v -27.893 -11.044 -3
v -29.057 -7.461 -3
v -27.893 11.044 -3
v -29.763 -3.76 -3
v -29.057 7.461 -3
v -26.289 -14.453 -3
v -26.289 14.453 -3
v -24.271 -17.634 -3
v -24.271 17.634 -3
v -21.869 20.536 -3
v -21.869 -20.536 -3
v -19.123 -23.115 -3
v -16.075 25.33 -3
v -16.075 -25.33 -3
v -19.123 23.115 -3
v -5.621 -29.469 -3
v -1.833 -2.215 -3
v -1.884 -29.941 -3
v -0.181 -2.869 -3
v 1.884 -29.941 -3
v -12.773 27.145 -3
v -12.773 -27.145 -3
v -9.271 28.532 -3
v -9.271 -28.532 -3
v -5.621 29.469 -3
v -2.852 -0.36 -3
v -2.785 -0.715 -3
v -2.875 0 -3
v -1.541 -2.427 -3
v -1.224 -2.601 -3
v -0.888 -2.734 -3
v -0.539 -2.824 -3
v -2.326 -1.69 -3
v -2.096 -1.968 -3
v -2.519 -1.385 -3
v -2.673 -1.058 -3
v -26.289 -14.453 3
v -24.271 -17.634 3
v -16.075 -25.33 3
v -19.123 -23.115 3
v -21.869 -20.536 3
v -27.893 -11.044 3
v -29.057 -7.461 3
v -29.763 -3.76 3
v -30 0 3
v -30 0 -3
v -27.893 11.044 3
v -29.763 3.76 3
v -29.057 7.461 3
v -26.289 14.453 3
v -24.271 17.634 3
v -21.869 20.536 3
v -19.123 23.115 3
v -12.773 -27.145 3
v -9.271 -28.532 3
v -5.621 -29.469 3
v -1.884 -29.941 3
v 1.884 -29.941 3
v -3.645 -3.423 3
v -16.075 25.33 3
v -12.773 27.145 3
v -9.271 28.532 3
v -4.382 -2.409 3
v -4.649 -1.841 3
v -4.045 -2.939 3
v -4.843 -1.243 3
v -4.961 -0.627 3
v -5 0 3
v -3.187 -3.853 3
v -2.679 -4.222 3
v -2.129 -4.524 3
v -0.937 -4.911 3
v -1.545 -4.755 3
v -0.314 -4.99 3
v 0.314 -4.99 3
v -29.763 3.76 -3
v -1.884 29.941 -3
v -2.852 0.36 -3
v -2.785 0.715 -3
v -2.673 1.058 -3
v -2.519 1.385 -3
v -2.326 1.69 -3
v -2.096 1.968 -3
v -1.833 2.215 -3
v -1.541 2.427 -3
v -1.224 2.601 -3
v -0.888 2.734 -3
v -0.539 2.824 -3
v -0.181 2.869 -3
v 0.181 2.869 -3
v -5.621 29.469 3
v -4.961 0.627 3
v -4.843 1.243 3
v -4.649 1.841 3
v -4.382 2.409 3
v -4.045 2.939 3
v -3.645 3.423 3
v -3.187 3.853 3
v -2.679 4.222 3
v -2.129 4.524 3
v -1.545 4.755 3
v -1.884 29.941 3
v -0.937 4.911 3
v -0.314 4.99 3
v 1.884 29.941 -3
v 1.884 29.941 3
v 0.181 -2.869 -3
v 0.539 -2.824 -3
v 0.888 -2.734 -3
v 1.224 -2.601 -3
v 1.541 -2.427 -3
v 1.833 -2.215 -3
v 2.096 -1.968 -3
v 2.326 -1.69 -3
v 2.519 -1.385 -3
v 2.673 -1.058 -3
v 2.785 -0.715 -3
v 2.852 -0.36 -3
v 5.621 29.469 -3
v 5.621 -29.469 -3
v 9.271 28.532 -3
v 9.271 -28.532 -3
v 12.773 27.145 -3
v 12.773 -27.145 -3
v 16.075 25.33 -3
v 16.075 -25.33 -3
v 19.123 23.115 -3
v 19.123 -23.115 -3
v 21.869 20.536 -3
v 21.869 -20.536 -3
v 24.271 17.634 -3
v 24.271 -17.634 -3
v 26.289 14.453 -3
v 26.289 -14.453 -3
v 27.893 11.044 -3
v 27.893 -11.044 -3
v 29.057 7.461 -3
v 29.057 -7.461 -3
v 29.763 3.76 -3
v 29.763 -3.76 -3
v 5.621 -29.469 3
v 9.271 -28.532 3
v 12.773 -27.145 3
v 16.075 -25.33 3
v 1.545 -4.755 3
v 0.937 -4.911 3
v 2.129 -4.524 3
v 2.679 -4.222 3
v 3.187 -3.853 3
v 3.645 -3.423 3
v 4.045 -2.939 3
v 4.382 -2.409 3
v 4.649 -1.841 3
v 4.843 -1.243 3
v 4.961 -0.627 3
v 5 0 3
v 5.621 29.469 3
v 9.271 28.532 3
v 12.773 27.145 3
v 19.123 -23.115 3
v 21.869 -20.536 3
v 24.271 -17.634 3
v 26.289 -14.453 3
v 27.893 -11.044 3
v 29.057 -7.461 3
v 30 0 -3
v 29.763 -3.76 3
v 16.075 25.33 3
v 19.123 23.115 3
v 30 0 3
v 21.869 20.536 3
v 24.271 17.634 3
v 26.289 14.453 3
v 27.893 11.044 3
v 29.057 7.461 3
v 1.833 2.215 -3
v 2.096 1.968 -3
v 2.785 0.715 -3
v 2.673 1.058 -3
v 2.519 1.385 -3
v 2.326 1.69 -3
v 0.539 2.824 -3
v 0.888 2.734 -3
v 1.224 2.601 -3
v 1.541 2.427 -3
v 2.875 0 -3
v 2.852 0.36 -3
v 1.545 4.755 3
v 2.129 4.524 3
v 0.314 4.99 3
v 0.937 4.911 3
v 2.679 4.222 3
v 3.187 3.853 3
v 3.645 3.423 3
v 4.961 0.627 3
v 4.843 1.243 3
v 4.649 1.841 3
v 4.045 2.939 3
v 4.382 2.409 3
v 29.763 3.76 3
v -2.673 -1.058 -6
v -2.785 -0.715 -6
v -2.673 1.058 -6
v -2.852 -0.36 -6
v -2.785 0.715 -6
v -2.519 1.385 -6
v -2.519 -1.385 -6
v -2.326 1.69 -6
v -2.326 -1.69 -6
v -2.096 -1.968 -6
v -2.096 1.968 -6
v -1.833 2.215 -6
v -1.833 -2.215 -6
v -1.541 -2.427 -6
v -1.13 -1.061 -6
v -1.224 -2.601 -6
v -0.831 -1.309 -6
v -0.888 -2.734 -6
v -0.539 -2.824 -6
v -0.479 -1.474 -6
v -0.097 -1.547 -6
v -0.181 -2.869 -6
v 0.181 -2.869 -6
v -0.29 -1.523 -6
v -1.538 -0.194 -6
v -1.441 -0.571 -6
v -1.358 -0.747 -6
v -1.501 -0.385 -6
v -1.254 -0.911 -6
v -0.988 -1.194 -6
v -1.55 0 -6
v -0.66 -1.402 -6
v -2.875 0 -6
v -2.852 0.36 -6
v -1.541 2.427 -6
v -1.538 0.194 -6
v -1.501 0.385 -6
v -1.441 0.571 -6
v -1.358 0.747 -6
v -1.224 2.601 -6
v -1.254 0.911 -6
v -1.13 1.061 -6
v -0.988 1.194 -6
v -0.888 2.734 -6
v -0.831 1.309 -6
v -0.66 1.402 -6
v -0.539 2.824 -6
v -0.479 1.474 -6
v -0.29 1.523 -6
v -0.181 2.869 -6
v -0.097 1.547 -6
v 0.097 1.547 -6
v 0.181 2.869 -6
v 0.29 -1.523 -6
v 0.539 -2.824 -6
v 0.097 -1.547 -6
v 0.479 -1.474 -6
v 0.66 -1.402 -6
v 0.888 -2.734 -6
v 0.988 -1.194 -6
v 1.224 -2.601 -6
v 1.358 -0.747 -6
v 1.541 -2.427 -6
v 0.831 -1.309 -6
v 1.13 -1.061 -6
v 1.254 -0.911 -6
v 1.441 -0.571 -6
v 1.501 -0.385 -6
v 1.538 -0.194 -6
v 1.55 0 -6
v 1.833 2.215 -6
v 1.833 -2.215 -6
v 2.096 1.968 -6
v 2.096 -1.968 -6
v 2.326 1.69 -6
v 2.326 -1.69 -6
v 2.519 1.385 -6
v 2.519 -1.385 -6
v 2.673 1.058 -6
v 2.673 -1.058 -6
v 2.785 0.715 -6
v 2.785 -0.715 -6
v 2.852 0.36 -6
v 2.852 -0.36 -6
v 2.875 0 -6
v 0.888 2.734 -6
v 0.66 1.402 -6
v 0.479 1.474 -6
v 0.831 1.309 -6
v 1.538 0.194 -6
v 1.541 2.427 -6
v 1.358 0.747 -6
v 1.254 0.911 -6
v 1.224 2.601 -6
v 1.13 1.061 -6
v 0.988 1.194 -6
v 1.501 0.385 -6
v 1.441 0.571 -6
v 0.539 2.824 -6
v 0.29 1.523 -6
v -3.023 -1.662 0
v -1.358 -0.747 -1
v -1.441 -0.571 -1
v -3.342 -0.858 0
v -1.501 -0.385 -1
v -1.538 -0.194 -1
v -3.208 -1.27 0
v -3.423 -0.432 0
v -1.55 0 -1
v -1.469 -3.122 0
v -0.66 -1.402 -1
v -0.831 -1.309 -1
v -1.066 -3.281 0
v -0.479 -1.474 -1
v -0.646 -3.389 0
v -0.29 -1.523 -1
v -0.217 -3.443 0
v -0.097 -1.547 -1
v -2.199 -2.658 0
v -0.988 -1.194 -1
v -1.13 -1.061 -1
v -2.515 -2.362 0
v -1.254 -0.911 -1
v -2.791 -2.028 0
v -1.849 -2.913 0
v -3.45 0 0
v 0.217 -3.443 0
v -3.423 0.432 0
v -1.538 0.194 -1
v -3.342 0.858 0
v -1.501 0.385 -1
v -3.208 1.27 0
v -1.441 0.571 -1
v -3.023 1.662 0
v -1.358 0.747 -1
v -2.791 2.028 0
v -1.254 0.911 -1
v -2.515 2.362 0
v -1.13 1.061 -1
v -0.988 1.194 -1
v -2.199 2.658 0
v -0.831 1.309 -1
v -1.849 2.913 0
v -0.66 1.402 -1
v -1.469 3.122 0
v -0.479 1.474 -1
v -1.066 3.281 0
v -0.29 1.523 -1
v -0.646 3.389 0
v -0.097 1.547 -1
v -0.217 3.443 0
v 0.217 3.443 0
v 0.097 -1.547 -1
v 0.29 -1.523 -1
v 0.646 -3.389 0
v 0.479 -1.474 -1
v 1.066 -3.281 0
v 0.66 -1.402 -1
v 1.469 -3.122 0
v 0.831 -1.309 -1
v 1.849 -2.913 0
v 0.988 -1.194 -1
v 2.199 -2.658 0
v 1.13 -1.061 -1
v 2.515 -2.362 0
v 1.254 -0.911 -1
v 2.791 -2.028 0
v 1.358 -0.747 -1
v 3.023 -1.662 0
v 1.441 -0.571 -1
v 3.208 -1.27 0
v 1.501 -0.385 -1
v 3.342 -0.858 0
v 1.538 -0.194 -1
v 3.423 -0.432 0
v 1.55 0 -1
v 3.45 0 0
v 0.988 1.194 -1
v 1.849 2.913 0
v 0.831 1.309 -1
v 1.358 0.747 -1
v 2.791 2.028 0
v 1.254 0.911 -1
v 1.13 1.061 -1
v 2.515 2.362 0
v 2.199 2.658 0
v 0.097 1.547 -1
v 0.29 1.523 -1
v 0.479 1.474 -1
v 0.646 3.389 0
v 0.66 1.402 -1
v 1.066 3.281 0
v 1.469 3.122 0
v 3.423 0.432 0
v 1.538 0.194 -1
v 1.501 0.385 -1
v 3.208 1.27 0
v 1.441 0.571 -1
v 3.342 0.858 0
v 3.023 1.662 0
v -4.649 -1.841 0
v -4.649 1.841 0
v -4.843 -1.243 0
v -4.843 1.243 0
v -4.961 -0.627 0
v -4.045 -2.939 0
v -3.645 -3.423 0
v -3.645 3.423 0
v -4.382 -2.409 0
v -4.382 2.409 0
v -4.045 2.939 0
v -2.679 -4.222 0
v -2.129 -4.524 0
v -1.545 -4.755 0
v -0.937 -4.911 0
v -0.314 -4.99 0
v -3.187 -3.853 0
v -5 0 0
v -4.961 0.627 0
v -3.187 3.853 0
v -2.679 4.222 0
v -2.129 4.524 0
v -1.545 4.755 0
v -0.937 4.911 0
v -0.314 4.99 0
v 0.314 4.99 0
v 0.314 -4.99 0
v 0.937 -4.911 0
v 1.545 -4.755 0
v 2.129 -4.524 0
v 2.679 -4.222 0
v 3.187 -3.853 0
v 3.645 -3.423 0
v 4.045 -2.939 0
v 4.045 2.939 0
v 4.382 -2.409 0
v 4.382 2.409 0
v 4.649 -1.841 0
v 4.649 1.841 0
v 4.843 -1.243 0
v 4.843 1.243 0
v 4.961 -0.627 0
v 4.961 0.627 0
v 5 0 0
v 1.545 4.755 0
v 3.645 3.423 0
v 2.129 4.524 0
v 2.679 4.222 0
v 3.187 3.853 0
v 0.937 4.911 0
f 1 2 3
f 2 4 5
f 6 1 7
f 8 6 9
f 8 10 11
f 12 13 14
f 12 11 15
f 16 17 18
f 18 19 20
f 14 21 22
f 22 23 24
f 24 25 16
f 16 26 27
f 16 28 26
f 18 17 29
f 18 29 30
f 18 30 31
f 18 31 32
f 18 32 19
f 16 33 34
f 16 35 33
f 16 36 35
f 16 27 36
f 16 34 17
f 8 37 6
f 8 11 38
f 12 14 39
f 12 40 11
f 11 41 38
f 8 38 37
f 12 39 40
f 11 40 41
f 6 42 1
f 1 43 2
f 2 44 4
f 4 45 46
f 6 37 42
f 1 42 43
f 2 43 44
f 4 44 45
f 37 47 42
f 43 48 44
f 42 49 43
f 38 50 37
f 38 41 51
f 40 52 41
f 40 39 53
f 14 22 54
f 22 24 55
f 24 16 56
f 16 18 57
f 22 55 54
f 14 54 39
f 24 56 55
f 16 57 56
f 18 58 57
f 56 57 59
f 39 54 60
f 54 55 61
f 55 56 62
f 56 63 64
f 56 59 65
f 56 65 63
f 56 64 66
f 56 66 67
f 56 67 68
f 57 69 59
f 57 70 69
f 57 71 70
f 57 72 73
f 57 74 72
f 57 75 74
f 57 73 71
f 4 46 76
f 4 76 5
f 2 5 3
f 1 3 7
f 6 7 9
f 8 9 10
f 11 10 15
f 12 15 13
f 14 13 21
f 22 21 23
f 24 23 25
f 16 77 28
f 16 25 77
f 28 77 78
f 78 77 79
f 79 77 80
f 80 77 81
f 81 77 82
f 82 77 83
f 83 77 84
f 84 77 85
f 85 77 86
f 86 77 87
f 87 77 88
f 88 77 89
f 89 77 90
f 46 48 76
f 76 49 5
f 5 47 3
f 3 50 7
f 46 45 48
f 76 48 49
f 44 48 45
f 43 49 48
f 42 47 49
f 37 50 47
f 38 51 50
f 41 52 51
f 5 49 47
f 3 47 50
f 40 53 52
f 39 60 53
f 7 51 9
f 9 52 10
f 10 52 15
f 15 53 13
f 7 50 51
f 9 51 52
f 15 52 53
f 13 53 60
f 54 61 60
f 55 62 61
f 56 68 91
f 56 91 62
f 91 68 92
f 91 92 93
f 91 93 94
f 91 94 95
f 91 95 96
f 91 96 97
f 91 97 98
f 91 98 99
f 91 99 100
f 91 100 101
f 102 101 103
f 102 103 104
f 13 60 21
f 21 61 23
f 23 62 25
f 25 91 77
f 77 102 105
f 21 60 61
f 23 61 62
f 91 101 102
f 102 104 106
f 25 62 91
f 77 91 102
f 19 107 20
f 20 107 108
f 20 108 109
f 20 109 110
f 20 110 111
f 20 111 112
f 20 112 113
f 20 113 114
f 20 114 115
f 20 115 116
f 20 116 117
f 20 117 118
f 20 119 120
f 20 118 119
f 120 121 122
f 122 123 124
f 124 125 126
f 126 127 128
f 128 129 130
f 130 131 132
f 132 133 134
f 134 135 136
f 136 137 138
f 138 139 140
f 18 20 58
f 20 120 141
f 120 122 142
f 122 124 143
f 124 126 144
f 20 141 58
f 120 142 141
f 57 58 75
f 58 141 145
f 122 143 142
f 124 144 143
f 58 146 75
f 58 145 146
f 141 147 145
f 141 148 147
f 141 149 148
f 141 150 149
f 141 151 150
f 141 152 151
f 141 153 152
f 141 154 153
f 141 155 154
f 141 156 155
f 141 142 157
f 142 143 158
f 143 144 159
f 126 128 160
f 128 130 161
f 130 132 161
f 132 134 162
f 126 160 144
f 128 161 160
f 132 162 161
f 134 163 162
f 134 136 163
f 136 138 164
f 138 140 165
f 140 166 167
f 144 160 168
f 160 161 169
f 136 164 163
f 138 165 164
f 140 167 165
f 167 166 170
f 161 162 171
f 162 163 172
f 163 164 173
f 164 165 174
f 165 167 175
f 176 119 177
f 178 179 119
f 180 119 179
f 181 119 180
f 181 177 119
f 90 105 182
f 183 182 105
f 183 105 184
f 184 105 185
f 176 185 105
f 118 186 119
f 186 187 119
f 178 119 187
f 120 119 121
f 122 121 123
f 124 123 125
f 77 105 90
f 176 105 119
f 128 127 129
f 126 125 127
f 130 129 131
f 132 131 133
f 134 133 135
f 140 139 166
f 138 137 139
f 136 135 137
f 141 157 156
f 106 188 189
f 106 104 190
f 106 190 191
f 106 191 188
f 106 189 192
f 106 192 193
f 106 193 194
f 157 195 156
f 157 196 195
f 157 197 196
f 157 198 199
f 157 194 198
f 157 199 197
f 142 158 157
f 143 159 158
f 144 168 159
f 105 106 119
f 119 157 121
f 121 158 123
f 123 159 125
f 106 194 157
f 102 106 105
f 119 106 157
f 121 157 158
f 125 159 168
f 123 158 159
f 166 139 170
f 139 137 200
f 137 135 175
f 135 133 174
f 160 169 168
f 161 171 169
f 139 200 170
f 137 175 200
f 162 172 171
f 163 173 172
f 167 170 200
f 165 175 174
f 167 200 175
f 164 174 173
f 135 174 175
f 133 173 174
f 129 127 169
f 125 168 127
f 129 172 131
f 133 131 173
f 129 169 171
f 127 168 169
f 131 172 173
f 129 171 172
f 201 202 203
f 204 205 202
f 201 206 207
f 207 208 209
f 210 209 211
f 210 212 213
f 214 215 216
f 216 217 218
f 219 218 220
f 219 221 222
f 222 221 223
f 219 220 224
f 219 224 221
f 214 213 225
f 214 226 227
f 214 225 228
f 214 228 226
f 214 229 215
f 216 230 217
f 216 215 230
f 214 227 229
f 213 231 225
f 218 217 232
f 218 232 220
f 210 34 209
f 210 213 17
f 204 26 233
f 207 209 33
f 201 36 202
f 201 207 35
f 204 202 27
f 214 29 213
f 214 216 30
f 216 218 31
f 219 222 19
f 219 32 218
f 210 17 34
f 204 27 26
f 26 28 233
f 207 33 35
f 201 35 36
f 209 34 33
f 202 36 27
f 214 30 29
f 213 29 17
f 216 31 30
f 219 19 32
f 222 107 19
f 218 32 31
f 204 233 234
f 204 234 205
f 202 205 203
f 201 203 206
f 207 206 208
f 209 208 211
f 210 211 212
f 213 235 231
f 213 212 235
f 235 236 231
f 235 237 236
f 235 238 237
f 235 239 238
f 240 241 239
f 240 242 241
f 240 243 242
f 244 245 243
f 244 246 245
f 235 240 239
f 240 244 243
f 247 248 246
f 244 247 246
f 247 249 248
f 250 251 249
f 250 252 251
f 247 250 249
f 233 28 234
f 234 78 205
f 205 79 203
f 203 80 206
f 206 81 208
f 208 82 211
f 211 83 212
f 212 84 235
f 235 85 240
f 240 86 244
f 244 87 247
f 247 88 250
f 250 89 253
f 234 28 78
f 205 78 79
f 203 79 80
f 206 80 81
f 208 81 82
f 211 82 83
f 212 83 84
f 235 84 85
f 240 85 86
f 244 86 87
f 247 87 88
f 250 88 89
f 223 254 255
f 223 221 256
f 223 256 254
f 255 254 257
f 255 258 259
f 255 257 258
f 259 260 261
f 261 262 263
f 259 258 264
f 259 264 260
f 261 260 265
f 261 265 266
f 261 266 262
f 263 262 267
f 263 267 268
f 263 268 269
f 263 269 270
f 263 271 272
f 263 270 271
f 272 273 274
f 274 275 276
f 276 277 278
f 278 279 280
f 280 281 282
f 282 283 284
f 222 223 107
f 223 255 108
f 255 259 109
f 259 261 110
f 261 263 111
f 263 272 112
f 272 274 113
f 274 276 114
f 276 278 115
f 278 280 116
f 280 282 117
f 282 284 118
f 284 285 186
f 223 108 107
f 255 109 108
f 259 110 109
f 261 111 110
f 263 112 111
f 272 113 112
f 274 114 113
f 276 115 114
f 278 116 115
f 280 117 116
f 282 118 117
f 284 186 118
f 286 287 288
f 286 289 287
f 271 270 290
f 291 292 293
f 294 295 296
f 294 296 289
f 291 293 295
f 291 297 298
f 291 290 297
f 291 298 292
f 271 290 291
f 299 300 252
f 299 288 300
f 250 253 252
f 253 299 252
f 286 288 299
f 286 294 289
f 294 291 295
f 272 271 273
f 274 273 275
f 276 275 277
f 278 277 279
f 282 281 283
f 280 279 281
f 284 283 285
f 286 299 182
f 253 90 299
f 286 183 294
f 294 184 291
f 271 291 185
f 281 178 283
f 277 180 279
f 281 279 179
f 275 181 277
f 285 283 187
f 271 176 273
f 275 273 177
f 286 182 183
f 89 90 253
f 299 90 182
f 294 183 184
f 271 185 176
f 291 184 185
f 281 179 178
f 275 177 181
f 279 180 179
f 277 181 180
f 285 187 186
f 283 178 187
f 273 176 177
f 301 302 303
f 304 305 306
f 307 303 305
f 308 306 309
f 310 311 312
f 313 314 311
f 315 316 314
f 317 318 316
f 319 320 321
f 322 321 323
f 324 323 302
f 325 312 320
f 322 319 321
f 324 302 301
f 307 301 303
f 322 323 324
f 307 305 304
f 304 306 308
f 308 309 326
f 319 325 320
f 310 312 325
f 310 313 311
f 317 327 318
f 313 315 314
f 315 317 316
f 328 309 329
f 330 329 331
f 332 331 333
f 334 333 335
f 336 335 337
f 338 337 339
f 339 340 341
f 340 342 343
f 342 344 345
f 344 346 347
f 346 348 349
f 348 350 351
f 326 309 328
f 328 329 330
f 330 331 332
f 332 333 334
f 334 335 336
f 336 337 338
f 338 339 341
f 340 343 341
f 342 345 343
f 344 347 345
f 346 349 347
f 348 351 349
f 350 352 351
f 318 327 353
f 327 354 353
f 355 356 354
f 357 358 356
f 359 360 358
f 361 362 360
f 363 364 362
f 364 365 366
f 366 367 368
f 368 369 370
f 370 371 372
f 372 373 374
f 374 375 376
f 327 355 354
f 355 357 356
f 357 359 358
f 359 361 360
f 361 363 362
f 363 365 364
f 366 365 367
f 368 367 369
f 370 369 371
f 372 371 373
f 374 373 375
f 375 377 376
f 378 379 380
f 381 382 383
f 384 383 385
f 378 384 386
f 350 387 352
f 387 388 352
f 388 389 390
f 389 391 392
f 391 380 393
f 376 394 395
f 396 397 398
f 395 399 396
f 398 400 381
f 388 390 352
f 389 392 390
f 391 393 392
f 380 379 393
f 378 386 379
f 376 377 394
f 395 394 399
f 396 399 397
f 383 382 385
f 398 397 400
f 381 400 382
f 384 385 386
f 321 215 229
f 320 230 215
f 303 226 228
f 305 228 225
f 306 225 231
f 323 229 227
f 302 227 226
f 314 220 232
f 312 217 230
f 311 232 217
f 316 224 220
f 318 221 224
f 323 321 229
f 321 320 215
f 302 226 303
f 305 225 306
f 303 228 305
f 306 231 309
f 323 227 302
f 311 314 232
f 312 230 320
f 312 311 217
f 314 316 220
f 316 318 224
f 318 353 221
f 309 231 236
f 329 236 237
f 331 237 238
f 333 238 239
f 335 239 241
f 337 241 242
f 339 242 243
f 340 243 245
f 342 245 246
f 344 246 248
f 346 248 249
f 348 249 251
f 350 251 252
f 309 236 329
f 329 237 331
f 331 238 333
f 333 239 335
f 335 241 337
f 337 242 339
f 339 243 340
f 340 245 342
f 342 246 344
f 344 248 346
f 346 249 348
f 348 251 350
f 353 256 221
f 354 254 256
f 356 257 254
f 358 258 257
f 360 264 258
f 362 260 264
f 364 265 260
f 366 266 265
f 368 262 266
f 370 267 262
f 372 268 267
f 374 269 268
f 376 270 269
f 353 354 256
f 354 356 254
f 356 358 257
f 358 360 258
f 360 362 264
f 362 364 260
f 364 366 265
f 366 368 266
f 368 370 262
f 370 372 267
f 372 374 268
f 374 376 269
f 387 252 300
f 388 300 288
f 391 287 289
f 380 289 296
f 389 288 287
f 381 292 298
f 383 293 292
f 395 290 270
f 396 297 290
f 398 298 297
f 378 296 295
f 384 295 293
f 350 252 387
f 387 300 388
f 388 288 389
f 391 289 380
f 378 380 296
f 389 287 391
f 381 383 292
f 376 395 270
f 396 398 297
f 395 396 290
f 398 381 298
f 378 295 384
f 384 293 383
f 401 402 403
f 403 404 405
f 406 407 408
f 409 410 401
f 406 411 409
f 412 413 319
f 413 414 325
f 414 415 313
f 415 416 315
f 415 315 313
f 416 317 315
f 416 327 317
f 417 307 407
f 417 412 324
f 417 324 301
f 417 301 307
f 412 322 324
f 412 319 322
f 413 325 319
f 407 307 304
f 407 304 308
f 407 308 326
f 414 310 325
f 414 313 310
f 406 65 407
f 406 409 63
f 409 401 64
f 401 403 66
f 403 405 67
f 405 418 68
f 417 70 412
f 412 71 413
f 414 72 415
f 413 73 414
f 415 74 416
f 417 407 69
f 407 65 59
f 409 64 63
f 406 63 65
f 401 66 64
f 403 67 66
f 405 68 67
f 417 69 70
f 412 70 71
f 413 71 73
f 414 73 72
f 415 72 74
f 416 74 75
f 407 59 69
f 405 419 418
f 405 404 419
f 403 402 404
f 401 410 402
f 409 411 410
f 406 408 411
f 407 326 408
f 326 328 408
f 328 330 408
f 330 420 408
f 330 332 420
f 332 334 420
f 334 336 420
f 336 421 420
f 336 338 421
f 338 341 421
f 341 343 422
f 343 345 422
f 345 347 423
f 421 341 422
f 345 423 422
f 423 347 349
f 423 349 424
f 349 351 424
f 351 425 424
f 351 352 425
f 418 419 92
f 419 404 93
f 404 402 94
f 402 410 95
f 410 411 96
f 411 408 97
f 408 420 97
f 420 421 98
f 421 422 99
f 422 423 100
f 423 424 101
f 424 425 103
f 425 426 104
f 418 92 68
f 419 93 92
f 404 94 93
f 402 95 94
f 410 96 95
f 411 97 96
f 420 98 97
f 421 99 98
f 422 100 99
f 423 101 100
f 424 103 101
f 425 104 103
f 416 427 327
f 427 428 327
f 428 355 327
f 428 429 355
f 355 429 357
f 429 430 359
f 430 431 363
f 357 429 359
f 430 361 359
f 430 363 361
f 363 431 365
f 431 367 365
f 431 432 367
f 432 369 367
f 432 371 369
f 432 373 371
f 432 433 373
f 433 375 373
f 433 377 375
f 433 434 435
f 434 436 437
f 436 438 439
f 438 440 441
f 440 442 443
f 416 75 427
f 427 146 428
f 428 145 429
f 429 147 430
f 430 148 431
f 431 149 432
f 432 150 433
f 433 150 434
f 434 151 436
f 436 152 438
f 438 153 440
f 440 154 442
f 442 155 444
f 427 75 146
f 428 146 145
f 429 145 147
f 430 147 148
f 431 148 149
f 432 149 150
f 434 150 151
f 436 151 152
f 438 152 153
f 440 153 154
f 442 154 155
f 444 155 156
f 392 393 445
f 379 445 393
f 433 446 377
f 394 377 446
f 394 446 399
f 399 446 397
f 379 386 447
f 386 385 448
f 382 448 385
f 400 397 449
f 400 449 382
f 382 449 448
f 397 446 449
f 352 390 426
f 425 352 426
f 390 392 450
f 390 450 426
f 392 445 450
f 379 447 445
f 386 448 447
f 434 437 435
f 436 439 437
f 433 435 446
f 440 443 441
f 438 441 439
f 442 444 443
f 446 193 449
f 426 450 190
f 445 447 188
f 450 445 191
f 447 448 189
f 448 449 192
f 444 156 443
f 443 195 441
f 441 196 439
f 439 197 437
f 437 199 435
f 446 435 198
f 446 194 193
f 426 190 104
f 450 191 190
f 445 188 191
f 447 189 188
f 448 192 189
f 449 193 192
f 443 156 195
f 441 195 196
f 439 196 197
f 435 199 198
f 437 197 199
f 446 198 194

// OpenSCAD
$fn = 50;

difference() {
	union() {
		translate(v = [0, 0, -3.0]) {
			cylinder(h = 6, r = 30.0);
		}
		#translate(v = [0, 0, -6.0]) {
			cylinder(h = 6, r = 2.875);
		}
	}
	union() {
		translate(v = [0, 0, 0]) {
			rotate(a = [0, 0, 0]) {
				difference() {
					union() {
						translate(v = [0, 0, -6.0]) {
							cylinder(h = 6, r = 1.25);
						}
						translate(v = [0, 0, -1.0]) {
							cylinder(h = 1.0, r1 = 1.55, r2 = 3.45);
						}
						translate(v = [0, 0, -6.0]) {
							cylinder(h = 6, r = 1.55);
						}
						translate(v = [0, 0, -6.0]) {
							cylinder(h = 6, r = 1.25);
						}
					}
					union();
				}
			}
		}
		#cylinder(h = 3, r = 5.0);
	}
}
